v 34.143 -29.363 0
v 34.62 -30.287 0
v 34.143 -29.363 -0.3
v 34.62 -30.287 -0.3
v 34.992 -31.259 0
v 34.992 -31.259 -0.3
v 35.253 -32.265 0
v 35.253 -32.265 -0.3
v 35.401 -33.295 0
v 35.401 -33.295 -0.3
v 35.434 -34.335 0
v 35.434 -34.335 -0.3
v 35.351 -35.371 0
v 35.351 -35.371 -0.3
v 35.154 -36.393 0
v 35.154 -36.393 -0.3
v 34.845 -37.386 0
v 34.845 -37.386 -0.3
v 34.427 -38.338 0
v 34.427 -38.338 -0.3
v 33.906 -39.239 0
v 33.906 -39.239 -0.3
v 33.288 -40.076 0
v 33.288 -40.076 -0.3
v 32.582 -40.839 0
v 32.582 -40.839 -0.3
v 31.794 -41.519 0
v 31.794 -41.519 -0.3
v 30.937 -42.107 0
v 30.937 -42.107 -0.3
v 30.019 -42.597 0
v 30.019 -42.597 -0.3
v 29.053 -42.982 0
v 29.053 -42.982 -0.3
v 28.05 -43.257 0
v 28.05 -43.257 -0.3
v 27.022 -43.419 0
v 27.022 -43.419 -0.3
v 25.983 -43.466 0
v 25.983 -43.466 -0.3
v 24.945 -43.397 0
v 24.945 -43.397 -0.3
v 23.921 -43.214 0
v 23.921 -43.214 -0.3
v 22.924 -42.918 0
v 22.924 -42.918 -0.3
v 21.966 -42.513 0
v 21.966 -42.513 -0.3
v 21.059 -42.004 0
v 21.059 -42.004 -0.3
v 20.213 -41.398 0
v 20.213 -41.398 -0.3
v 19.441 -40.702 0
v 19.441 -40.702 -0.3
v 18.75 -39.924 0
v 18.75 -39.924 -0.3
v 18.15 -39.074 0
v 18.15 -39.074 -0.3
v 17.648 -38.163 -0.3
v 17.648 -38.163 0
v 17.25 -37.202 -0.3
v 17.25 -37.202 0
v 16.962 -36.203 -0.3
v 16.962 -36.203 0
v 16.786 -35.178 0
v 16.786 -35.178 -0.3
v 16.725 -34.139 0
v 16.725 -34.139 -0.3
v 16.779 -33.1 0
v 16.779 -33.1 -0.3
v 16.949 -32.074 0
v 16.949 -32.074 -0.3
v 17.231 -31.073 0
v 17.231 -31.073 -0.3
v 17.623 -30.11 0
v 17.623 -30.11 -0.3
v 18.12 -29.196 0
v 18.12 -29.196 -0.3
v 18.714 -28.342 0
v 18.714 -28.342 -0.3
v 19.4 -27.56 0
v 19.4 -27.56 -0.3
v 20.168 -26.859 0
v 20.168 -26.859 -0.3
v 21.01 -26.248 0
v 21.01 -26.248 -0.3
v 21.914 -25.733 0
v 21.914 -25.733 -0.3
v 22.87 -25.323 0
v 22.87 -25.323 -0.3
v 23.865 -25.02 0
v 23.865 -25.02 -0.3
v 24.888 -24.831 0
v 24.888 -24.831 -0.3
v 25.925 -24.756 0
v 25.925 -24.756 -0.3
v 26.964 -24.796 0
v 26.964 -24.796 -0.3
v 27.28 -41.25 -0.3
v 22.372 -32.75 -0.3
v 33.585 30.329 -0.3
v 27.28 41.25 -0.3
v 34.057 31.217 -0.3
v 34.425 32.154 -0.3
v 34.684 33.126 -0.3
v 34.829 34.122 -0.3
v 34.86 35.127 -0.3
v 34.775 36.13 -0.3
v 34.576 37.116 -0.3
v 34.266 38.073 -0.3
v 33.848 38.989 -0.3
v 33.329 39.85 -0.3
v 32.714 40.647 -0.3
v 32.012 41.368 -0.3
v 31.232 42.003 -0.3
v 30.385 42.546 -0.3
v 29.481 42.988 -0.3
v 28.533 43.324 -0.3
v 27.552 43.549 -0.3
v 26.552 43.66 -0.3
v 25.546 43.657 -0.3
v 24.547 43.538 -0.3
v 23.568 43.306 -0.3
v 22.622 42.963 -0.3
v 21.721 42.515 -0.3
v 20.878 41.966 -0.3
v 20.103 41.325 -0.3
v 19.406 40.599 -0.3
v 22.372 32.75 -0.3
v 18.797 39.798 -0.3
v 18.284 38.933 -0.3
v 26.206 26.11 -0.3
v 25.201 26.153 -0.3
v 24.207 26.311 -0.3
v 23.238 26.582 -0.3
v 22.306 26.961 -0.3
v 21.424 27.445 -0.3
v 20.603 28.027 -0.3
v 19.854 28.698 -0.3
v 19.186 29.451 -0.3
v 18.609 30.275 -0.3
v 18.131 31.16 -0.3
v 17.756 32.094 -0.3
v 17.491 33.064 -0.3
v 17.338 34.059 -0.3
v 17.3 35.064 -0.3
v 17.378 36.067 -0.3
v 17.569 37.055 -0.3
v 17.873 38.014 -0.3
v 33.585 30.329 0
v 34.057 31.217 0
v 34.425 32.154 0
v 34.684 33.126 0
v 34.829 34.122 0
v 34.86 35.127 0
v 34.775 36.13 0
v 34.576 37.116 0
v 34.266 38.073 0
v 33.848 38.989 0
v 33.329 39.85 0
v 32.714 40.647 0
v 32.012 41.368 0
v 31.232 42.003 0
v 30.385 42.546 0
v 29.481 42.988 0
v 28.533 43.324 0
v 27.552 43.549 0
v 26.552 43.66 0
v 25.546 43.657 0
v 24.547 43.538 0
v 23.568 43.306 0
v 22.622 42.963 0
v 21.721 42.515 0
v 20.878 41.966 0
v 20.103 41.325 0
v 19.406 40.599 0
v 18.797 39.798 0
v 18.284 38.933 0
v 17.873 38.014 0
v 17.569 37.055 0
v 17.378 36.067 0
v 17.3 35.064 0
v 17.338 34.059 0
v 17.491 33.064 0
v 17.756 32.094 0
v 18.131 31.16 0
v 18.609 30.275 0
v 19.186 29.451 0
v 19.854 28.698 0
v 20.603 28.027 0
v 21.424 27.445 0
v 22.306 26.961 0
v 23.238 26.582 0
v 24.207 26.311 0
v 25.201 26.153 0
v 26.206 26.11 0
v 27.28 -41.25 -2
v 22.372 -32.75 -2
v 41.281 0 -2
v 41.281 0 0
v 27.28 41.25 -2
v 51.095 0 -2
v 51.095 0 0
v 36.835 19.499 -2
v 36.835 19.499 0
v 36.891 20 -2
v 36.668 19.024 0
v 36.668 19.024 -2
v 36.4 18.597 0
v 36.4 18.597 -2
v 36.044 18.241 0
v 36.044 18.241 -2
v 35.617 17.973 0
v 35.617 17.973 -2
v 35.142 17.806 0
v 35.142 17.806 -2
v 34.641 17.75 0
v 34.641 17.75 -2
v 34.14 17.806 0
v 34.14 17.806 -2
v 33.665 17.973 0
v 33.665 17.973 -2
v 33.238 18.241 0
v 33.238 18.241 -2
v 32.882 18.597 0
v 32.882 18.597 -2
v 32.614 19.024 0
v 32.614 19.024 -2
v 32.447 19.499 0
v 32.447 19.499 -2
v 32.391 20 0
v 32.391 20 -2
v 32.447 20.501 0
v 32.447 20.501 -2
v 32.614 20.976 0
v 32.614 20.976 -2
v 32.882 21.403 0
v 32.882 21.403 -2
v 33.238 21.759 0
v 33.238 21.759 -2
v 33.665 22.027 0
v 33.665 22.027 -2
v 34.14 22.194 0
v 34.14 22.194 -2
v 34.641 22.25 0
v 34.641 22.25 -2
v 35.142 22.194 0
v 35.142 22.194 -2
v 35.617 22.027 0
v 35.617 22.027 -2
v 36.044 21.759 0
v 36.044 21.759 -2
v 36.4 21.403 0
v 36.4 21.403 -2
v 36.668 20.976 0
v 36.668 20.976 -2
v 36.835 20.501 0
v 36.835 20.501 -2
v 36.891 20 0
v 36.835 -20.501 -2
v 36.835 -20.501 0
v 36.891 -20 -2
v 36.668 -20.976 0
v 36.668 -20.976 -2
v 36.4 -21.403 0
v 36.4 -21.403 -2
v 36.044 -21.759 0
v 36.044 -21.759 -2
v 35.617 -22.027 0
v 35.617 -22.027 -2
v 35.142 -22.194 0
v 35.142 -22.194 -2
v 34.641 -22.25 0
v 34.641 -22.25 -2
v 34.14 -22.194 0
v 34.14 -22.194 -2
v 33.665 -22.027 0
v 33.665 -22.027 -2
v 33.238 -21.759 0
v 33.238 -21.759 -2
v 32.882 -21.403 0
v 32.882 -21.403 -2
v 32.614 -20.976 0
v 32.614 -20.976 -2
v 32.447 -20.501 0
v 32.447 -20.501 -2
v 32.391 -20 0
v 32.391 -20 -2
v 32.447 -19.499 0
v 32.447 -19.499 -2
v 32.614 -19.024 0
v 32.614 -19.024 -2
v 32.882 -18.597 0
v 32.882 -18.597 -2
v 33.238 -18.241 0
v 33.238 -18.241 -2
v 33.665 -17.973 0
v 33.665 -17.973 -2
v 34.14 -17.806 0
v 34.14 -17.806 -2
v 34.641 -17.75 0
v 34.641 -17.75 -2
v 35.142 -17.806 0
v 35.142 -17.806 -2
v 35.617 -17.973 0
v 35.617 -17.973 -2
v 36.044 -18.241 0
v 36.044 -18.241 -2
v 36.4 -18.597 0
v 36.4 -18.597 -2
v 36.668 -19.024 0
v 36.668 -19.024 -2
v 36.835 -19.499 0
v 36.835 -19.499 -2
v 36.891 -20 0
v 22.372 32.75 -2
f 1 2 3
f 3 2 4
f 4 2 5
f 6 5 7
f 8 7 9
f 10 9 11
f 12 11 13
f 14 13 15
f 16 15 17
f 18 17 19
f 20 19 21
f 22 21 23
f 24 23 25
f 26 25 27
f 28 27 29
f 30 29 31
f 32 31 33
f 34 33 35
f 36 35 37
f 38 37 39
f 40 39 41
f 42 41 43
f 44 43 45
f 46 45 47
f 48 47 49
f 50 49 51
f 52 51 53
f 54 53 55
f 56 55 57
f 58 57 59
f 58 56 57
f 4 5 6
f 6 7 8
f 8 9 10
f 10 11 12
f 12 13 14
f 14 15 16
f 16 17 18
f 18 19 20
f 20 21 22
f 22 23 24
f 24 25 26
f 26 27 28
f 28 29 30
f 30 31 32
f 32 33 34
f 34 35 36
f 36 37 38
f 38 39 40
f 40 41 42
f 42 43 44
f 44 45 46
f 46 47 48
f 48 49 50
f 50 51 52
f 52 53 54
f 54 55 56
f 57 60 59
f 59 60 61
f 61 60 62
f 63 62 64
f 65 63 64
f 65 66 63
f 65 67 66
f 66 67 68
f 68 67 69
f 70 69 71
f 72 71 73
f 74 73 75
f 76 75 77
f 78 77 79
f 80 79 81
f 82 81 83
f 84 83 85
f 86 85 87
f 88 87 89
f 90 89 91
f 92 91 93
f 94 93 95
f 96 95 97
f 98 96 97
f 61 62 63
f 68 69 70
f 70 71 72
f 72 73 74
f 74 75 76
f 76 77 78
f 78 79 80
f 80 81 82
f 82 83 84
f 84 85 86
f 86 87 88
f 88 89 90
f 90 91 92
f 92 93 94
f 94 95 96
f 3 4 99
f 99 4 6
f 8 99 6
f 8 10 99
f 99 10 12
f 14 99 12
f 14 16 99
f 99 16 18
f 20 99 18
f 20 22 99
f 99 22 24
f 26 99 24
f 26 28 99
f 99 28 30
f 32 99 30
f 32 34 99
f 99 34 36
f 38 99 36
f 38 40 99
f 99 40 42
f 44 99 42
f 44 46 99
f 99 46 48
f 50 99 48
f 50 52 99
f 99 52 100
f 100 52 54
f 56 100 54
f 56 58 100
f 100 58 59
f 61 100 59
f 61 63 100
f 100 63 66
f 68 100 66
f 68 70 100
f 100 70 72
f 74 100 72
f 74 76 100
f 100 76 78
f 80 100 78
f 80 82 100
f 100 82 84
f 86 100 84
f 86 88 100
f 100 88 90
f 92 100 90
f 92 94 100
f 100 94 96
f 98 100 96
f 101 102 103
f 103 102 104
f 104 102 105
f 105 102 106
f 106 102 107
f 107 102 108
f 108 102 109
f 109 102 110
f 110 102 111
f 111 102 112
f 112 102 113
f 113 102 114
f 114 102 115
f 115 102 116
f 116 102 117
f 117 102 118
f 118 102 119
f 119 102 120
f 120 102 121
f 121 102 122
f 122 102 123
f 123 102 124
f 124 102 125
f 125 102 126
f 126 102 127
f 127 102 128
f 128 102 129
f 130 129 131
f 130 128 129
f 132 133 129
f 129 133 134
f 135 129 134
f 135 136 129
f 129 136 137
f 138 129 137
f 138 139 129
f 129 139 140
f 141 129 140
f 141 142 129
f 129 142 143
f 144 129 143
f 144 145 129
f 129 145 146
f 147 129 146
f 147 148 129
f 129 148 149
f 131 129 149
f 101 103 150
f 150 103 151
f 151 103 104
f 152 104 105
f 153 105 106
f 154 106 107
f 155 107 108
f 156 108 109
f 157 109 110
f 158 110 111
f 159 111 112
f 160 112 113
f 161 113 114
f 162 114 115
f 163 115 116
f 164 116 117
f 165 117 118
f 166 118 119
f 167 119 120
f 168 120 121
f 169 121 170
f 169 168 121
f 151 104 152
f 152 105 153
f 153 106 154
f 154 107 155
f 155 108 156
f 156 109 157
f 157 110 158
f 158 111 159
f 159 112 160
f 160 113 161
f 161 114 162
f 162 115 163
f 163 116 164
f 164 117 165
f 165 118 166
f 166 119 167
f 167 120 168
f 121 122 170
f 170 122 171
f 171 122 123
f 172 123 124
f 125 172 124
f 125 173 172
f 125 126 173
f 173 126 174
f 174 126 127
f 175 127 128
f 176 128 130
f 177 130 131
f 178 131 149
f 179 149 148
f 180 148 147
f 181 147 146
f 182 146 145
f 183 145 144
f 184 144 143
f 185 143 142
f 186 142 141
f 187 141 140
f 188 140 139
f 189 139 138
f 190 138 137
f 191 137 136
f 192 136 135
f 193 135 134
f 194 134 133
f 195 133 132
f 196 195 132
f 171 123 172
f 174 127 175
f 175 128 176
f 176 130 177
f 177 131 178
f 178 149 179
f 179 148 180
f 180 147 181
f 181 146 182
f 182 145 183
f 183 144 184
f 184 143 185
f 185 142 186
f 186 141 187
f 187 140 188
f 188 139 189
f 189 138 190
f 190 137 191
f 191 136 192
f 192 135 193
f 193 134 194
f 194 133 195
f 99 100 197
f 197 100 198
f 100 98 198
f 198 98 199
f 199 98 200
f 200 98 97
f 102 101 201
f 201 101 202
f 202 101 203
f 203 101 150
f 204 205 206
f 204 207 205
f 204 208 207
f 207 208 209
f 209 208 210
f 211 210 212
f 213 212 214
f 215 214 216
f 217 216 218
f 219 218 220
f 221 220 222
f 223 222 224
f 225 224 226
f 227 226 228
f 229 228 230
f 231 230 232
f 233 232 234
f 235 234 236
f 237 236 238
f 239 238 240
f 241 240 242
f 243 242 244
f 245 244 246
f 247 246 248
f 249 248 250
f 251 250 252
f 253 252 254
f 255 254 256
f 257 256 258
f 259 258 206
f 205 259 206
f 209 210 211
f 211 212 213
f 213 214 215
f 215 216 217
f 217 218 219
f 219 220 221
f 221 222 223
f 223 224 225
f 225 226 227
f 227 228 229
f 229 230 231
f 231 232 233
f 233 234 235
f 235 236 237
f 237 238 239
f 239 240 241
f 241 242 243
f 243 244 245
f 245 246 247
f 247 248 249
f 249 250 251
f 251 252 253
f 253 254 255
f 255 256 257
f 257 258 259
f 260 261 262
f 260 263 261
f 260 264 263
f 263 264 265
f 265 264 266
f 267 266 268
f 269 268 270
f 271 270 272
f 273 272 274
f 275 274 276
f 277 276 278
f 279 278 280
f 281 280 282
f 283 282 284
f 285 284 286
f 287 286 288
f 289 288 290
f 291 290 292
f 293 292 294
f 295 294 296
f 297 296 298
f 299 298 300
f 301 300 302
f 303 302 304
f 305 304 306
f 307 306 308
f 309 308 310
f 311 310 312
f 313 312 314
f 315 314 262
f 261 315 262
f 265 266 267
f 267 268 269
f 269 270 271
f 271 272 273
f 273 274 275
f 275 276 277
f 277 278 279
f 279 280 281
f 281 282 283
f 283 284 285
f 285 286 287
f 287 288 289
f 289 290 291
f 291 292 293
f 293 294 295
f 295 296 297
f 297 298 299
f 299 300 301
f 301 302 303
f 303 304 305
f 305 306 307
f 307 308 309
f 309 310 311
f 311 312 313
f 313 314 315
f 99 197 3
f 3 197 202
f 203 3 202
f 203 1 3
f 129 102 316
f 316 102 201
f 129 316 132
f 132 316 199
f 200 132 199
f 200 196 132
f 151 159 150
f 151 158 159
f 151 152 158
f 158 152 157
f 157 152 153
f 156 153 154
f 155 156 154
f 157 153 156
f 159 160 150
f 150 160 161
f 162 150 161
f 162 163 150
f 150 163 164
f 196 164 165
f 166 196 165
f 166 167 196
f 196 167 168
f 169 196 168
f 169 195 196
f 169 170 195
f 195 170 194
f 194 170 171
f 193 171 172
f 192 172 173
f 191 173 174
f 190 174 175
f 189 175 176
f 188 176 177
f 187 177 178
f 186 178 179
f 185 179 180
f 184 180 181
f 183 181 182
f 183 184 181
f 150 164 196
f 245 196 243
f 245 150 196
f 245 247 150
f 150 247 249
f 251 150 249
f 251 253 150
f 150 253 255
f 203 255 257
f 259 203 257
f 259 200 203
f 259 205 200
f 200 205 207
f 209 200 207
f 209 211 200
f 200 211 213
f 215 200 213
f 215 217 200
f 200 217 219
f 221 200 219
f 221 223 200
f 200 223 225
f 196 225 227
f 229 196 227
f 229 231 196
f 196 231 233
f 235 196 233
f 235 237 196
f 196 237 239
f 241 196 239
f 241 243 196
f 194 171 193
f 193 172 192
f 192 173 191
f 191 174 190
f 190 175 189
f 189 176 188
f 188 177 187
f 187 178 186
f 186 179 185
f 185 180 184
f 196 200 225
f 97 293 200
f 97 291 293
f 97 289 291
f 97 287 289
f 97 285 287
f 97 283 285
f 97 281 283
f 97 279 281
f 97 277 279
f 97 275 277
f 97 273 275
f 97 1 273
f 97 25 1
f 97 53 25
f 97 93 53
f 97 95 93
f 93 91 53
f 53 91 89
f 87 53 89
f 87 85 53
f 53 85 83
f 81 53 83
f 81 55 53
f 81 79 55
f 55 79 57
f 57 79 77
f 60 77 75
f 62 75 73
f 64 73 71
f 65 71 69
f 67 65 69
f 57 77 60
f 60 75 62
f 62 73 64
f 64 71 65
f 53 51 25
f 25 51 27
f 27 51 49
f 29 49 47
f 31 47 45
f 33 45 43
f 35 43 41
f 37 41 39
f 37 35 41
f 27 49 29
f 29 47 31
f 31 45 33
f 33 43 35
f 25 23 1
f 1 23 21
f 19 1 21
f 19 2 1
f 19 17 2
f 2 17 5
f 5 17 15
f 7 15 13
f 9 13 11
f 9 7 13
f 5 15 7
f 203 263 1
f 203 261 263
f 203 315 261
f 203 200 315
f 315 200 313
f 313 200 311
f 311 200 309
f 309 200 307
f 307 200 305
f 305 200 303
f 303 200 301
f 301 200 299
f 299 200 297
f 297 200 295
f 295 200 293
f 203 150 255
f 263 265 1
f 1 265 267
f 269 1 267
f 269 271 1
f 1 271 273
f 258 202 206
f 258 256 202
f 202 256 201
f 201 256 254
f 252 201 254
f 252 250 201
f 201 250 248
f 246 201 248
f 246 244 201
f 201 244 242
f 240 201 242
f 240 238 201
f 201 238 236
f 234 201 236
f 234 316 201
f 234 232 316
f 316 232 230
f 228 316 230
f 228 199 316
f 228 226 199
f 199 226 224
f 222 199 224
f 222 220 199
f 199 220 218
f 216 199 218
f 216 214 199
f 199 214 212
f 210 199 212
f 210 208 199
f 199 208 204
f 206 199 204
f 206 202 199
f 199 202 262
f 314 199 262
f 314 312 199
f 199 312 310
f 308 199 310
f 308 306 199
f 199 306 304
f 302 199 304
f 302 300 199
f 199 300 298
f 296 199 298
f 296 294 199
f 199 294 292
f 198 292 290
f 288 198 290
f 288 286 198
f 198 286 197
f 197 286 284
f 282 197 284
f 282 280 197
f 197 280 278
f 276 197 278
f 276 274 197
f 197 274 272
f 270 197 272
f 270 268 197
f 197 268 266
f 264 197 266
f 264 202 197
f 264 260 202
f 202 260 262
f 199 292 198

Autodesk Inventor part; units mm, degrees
ref_plane "YZ Plane" through (0, 0, 0) normal (1, 0, 0) x (0, 1, 0)
ref_plane "XZ Plane" through (0, 0, 0) normal (0, 1, 0) x (-1, 0, 0)
ref_plane "XY Plane" through (0, 0, 0) normal (0, 0, 1) x (1, 0, 0)
sketch "Sketch1" plane through (0, 0, 0) normal (0, 0, 1) x (1, 0, 0)
  circle A0 centre (0, 0) radius 7.5
  line L0 (-21.2869, 0) -> (22.3896, 0) construction
  line L1 (0, 21.9302) -> (0, -69.0741) construction
  line L2 (24.9778, -67) -> (-24.9778, -67) construction
  line L3 (-17.5, -57) -> (17.5, -57)
  line L4 (17.5, -57) -> (17.5, -67)
  line L5 (17.5, -67) -> (-17.5, -67)
  line L6 (-17.5, -67) -> (-17.5, -57)
  line L7 (-37.5278, -67) -> (-18.5, -67)
  line L8 (-18.5, -67) -> (-18.5, -56)
  line L9 (-17.5, -62) -> (17.5, -62) construction
  line L10 (-18.5, -59) -> (-22.5, -59)
  line L11 (-22.5, -59) -> (-22.5, -65)
  line L12 (-22.5, -65) -> (-18.5, -65)
  line L13 (-18.5, -65) -> (-18.5, -59)
  line L14 (-17.5, -60) -> (-21.5, -60)
  line L15 (-21.5, -60) -> (-21.5, -64)
  line L16 (-21.5, -64) -> (-17.5, -64)
  line L17 (-17.5, -64) -> (-17.5, -60)
  line L18 (-18.5, -56) -> (-28.8675, -56)
  line L19 (17.5, -60) -> (21.5, -60)
  line L20 (21.5, -60) -> (21.5, -64)
  line L21 (21.5, -64) -> (17.5, -64)
  line L22 (17.5, -64) -> (17.5, -60)
  line L23 (18.5, -67) -> (18.5, -56)
  line L24 (18.5, -67) -> (37.5278, -67)
  line L25 (18.5, -65) -> (22.5, -65)
  line L26 (22.5, -65) -> (22.5, -59)
  line L27 (22.5, -59) -> (18.5, -59)
  line L28 (18.5, -59) -> (18.5, -65)
  line L29 (18.5, -56) -> (28.8675, -56)
  line L30 (-23.7704, -40) -> (28.6931, -40) construction
  line L31 (-17.1762, -35.75) -> (17.1762, -35.75)
  line L32 (-22.0836, -44.25) -> (22.0836, -44.25)
  circle A1 centre (0, -40) radius 2.25
  line L33 (-7.5, -16) -> (7.5, -16)
  line L34 (7.5, -16) -> (7.5, -21)
  line L35 (7.5, -26) -> (-7.5, -26)
  line L36 (-7.5, -26) -> (-7.5, -24)
  line L37 (7.5, -21) -> (-7.5, -21) construction
  line L38 (-7.5, -18) -> (-3.5, -18)
  line L39 (-3.5, -18) -> (-3.5, -21)
  line L40 (-3.5, -24) -> (-7.5, -24)
  line L41 (-7.5, -24) -> (-7.5, -23)
  line L42 (-8.5, -19) -> (-4.5, -19)
  line L43 (-4.5, -19) -> (-4.5, -23)
  line L44 (-4.5, -23) -> (-8.5, -23)
  line L45 (-8.5, -23) -> (-8.5, -19)
  line L46 (7.5, -18) -> (3.5, -18)
  line L47 (3.5, -18) -> (3.5, -21)
  line L48 (3.5, -24) -> (7.5, -24)
  line L49 (7.5, -24) -> (7.5, -18)
  line L50 (8.5, -19) -> (4.5, -19)
  line L51 (4.5, -19) -> (4.5, -23)
  line L52 (4.5, -23) -> (8.5, -23)
  line L53 (8.5, -23) -> (8.5, -19)
  line L54 (-9.815, -19) -> (-31.1769, -56)
  line L55 (-7.5056, -19) -> (-28.8675, -56)
  line L56 (7.5056, -19) -> (28.8675, -56)
  line L57 (-4.5, -21) -> (-8.5, -21)
  line L58 (4.5, -21) -> (8.5, -21)
  line L59 (-21.5, -62) -> (-17.5, -62)
  line L60 (17.5, -62) -> (21.5, -62)
  line L61 (-22.5, -62) -> (-18.5, -62)
  line L62 (22.5, -62) -> (18.5, -62)
  line L63 (-7.5, -21) -> (-3.5, -21)
  line L64 (3.5, -21) -> (7.5, -21)
  line L65 (-28.8675, -56) -> (-31.1769, -56)
  line L66 (28.8675, -56) -> (31.1769, -56)
  line L67 (-10.8853, -24.8539) -> (-12.6173, -23.8539)
  line L68 (10.8875, -24.8576) -> (12.6195, -23.8576)
  line L69 (7.5, -23) -> (7.5, -24)
  line L70 (-7.5, -23) -> (-7.5, -21)
  line L71 (-7.5, -24) -> (-7.5, -16)
  line L72 (7.5, -24) -> (7.5, -26)
  line L73 (-7.5, -21) -> (-7.5, -18)
  line L74 (-3.5, -21) -> (-3.5, -24)
  line L75 (3.5, -21) -> (3.5, -24)
  line L76 (7.5, -21) -> (7.5, -23)
  line L77 (-18.4752, 0) -> (-9.2376, 16)
  line L78 (-9.2376, 16) -> (9.2376, 16)
  line L79 (9.2376, 16) -> (18.4752, 0)
  line L80 (18.4752, 0) -> (9.2376, -16)
  line L81 (9.2376, -16) -> (-9.2376, -16)
  line L82 (-9.2376, -16) -> (-18.4752, 0)
  line L83 (-77.3649, 0) -> (-38.6825, 67) construction
  line L84 (-38.6825, 67) -> (38.6825, 67) construction
  line L85 (38.6825, 67) -> (77.3649, 0) construction
  line L86 (77.3649, 0) -> (38.6825, -67) construction
  line L87 (38.6825, -67) -> (-38.6825, -67) construction
  line L88 (-38.6825, -67) -> (-77.3649, 0) construction
  line L89 (-9.2376, -16) -> (-38.6825, -67) construction
  line L90 (9.2376, -16) -> (38.6825, -67) construction
  line L91 (0, -16.7974) -> (0, -26) construction
  line L92 (9.815, -19) -> (31.1769, -56)
  line L93 (-8.5, -19) -> (-9.815, -19)
  line L94 (8.5, -19) -> (9.815, -19)
  line L95 (-8.5, -23) -> (-9.815, -23)
  line L96 (8.5, -23) -> (9.815, -23)
  line L97 (-31.1769, -56) -> (-37.5278, -67)
  line L98 (31.1769, -56) -> (37.5278, -67)
  circle A2 centre (12.25, 0) radius 2.25
  circle A3 centre (6.125, 10.6088) radius 2.25
  circle A4 centre (-6.125, 10.6088) radius 2.25
  circle A5 centre (-12.25, 0) radius 2.25
  circle A6 centre (-6.125, -10.6088) radius 2.25
  circle A7 centre (6.125, -10.6088) radius 2.25
  line L99 (22.3723, -32.75) -> (39.5485, -3)
  line L100 (27.2798, -41.25) -> (49.3634, -3)
  circle A8 centre (34.641, -20) radius 2.25
  line L101 (39.5485, 3) -> (22.3723, 32.75)
  line L102 (49.3634, 3) -> (27.2798, 41.25)
  circle A9 centre (34.641, 20) radius 2.25
  line L103 (17.1762, 35.75) -> (-17.1762, 35.75)
  line L104 (22.0836, 44.25) -> (-22.0836, 44.25)
  circle A10 centre (0, 40) radius 2.25
  line L105 (-22.3723, 32.75) -> (-39.5485, 3)
  line L106 (-27.2798, 41.25) -> (-49.3634, 3)
  circle A11 centre (-34.641, 20) radius 2.25
  line L107 (-39.5485, -3) -> (-22.3723, -32.75)
  line L108 (-49.3634, -3) -> (-27.2798, -41.25)
  circle A12 centre (-34.641, -20) radius 2.25
  line L109 (22.3723, -32.75) -> (27.2798, -41.25)
  line L110 (49.3634, -3) -> (51.0955, 0)
  line L111 (49.3634, 3) -> (51.0955, 0)
  line L112 (39.5485, -3) -> (41.2805, 0)
  line L113 (39.5485, 3) -> (41.2805, 0)
  line L114 (7.3612, 4.25) -> (38.8268, 4.25)
  line L115 (7.3612, -4.25) -> (38.8268, -4.25)
  arc A13 (8.5, 0) -> (7.3612, 4.25) centre (0, 0) ccw
  arc A14 (7.3612, -4.25) -> (8.5, 0) centre (0, 0) ccw
  arc A15 (7.3612, 4.25) -> (7.3612, -4.25) centre (0, 0) ccw
  line L116 (22.3723, 32.75) -> (27.2798, 41.25)
  circle A16 centre (26.0807, 34.891) radius 8.782
  circle A17 centre (26.0807, -34.1103) radius 9.356
  point P0 (0, -57)
  point P1 (0, -67)
  point P2 (0, -62)
  point P3 (0, -21)
  dimension "d0" = 15
  dimension "d16" = 10
  dimension "d20" = 6
  dimension "d21" = 4
  dimension "d22" = 4
  dimension "d23" = 1
  dimension "d24" = 1
  dimension "d25" = 35
  dimension "d27" = 3
  dimension "d28" = 4
  dimension "d29" = 1
  dimension "d30" = 6
  dimension "d31" = 4
  dimension "d32" = 1
  dimension "d34" = 3
  dimension "d35" = 27
  dimension "d39" = 4.5
  dimension "d41" = 2
  dimension "d42" = 2
  dimension "d44" = 10
  dimension "d45" = 4
  dimension "d46" = 6
  dimension "d48" = 4
  dimension "d49" = 1
  dimension "d50" = 4
  dimension "d52" = 6
  dimension "d53" = 4
  dimension "d54" = 4
  dimension "d55" = 1
  dimension "d56" = 4
  dimension "d57" = 15
  dimension "d60" = 2
  dimension "d81" = 16
  dimension "d83" = 67
  dimension "d84" = 1
  dimension "d86" = 2
  dimension "d87" = 1
  dimension "d88" = 5
  dimension "d89" = 3
  dimension "d90" = 3
  dimension "d112" = 4.5
  dimension "d113" = 2.5
  dimension "d116" = 360
  dimension "d120" = 360
  dimension "d122" = 2
  dimension "d123" = 2
  dimension "d124" = 1
extrude "Extrusion8" add sketch "Sketch1" against normal blind 2 contours A17 L100 L109 L99 | L99 L112 L113 L101 A16 L102 L111 L110 L100 A17 | A16 L101 L116 L102 picked at (27.7457, 34.7764)
extrude "Extrusion9" add sketch "Sketch1" against normal blind 0.3 contours A17 L31 L56 | L56 A17 L92 | L92 A17 L99 L109 L100 | A17 L56 L31 | A17 L100 L109 L99 | A16 L101 L116 L102 | L102 L116 L101 A16
equation "\"d20\" = hinge_w"
equation "\"d21\" = hinge_d"
equation "\"d22\" = hinge_w - 2 * hinge_sp"
equation "\"d23\" = hinge_sp"
equation "\"d24\" = sp"
equation "\"d28\" = hinge_w - 2 * hinge_sp"
equation "\"d29\" = sp"
equation "\"d30\" = hinge_w"
equation "\"d31\" = hinge_d"
equation "\"d32\" = hinge_sp"
equation "\"d39\" = screw"
equation "\"d45\" = hinge_d"
equation "\"d46\" = hinge_w"
equation "\"d48\" = hinge_d"
equation "\"d49\" = hinge_sp"
equation "\"d50\" = hinge_w - 2 * hinge_sp"
equation "\"screw\" = 4.5"
equation "\"k\" = 0.4"
equation "\"sp\" = 1"
equation "\"d14\" = sp"
equation "\"d15\" = sp"
equation "\"d19\" = sp"
equation "\"hinge_d\" = 4"
equation "\"hinge_w\" = 6"
equation "\"hinge_sp\" = 1"
properties part number "RobotBase" material "Glass"
